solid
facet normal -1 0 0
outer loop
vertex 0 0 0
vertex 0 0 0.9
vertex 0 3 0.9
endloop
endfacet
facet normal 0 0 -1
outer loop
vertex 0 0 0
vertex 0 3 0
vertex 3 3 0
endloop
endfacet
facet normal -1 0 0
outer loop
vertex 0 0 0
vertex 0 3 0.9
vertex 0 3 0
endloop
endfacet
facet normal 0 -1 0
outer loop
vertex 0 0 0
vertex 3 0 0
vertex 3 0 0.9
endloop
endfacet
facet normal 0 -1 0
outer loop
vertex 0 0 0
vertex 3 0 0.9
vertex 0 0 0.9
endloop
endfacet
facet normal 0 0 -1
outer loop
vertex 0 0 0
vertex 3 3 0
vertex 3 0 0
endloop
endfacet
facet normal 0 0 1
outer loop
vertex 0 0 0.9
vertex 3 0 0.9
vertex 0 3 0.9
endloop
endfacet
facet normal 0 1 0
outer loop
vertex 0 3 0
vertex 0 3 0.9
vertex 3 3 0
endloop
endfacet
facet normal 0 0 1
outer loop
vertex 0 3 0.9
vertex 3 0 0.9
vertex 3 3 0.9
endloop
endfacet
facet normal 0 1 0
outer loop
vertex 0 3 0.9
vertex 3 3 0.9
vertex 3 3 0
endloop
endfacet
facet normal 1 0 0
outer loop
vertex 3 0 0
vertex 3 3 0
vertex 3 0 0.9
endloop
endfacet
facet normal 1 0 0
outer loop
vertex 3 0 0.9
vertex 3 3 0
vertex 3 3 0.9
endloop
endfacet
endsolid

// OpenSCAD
/* Warning, this is a very basic generator with a lot of approximation 
input data : [VQFN, NBA, 3x3x0.9mm, 16, , A, C04-01284A]
generated by com.zoubworld.electronics.cad.model3d.Basic
Date : Sun Feb 15 10:50:49 CET 2026
*/

//body
color("black")
translate([0,0,0])
cube([3.0,3.0,0.9], center=false);
